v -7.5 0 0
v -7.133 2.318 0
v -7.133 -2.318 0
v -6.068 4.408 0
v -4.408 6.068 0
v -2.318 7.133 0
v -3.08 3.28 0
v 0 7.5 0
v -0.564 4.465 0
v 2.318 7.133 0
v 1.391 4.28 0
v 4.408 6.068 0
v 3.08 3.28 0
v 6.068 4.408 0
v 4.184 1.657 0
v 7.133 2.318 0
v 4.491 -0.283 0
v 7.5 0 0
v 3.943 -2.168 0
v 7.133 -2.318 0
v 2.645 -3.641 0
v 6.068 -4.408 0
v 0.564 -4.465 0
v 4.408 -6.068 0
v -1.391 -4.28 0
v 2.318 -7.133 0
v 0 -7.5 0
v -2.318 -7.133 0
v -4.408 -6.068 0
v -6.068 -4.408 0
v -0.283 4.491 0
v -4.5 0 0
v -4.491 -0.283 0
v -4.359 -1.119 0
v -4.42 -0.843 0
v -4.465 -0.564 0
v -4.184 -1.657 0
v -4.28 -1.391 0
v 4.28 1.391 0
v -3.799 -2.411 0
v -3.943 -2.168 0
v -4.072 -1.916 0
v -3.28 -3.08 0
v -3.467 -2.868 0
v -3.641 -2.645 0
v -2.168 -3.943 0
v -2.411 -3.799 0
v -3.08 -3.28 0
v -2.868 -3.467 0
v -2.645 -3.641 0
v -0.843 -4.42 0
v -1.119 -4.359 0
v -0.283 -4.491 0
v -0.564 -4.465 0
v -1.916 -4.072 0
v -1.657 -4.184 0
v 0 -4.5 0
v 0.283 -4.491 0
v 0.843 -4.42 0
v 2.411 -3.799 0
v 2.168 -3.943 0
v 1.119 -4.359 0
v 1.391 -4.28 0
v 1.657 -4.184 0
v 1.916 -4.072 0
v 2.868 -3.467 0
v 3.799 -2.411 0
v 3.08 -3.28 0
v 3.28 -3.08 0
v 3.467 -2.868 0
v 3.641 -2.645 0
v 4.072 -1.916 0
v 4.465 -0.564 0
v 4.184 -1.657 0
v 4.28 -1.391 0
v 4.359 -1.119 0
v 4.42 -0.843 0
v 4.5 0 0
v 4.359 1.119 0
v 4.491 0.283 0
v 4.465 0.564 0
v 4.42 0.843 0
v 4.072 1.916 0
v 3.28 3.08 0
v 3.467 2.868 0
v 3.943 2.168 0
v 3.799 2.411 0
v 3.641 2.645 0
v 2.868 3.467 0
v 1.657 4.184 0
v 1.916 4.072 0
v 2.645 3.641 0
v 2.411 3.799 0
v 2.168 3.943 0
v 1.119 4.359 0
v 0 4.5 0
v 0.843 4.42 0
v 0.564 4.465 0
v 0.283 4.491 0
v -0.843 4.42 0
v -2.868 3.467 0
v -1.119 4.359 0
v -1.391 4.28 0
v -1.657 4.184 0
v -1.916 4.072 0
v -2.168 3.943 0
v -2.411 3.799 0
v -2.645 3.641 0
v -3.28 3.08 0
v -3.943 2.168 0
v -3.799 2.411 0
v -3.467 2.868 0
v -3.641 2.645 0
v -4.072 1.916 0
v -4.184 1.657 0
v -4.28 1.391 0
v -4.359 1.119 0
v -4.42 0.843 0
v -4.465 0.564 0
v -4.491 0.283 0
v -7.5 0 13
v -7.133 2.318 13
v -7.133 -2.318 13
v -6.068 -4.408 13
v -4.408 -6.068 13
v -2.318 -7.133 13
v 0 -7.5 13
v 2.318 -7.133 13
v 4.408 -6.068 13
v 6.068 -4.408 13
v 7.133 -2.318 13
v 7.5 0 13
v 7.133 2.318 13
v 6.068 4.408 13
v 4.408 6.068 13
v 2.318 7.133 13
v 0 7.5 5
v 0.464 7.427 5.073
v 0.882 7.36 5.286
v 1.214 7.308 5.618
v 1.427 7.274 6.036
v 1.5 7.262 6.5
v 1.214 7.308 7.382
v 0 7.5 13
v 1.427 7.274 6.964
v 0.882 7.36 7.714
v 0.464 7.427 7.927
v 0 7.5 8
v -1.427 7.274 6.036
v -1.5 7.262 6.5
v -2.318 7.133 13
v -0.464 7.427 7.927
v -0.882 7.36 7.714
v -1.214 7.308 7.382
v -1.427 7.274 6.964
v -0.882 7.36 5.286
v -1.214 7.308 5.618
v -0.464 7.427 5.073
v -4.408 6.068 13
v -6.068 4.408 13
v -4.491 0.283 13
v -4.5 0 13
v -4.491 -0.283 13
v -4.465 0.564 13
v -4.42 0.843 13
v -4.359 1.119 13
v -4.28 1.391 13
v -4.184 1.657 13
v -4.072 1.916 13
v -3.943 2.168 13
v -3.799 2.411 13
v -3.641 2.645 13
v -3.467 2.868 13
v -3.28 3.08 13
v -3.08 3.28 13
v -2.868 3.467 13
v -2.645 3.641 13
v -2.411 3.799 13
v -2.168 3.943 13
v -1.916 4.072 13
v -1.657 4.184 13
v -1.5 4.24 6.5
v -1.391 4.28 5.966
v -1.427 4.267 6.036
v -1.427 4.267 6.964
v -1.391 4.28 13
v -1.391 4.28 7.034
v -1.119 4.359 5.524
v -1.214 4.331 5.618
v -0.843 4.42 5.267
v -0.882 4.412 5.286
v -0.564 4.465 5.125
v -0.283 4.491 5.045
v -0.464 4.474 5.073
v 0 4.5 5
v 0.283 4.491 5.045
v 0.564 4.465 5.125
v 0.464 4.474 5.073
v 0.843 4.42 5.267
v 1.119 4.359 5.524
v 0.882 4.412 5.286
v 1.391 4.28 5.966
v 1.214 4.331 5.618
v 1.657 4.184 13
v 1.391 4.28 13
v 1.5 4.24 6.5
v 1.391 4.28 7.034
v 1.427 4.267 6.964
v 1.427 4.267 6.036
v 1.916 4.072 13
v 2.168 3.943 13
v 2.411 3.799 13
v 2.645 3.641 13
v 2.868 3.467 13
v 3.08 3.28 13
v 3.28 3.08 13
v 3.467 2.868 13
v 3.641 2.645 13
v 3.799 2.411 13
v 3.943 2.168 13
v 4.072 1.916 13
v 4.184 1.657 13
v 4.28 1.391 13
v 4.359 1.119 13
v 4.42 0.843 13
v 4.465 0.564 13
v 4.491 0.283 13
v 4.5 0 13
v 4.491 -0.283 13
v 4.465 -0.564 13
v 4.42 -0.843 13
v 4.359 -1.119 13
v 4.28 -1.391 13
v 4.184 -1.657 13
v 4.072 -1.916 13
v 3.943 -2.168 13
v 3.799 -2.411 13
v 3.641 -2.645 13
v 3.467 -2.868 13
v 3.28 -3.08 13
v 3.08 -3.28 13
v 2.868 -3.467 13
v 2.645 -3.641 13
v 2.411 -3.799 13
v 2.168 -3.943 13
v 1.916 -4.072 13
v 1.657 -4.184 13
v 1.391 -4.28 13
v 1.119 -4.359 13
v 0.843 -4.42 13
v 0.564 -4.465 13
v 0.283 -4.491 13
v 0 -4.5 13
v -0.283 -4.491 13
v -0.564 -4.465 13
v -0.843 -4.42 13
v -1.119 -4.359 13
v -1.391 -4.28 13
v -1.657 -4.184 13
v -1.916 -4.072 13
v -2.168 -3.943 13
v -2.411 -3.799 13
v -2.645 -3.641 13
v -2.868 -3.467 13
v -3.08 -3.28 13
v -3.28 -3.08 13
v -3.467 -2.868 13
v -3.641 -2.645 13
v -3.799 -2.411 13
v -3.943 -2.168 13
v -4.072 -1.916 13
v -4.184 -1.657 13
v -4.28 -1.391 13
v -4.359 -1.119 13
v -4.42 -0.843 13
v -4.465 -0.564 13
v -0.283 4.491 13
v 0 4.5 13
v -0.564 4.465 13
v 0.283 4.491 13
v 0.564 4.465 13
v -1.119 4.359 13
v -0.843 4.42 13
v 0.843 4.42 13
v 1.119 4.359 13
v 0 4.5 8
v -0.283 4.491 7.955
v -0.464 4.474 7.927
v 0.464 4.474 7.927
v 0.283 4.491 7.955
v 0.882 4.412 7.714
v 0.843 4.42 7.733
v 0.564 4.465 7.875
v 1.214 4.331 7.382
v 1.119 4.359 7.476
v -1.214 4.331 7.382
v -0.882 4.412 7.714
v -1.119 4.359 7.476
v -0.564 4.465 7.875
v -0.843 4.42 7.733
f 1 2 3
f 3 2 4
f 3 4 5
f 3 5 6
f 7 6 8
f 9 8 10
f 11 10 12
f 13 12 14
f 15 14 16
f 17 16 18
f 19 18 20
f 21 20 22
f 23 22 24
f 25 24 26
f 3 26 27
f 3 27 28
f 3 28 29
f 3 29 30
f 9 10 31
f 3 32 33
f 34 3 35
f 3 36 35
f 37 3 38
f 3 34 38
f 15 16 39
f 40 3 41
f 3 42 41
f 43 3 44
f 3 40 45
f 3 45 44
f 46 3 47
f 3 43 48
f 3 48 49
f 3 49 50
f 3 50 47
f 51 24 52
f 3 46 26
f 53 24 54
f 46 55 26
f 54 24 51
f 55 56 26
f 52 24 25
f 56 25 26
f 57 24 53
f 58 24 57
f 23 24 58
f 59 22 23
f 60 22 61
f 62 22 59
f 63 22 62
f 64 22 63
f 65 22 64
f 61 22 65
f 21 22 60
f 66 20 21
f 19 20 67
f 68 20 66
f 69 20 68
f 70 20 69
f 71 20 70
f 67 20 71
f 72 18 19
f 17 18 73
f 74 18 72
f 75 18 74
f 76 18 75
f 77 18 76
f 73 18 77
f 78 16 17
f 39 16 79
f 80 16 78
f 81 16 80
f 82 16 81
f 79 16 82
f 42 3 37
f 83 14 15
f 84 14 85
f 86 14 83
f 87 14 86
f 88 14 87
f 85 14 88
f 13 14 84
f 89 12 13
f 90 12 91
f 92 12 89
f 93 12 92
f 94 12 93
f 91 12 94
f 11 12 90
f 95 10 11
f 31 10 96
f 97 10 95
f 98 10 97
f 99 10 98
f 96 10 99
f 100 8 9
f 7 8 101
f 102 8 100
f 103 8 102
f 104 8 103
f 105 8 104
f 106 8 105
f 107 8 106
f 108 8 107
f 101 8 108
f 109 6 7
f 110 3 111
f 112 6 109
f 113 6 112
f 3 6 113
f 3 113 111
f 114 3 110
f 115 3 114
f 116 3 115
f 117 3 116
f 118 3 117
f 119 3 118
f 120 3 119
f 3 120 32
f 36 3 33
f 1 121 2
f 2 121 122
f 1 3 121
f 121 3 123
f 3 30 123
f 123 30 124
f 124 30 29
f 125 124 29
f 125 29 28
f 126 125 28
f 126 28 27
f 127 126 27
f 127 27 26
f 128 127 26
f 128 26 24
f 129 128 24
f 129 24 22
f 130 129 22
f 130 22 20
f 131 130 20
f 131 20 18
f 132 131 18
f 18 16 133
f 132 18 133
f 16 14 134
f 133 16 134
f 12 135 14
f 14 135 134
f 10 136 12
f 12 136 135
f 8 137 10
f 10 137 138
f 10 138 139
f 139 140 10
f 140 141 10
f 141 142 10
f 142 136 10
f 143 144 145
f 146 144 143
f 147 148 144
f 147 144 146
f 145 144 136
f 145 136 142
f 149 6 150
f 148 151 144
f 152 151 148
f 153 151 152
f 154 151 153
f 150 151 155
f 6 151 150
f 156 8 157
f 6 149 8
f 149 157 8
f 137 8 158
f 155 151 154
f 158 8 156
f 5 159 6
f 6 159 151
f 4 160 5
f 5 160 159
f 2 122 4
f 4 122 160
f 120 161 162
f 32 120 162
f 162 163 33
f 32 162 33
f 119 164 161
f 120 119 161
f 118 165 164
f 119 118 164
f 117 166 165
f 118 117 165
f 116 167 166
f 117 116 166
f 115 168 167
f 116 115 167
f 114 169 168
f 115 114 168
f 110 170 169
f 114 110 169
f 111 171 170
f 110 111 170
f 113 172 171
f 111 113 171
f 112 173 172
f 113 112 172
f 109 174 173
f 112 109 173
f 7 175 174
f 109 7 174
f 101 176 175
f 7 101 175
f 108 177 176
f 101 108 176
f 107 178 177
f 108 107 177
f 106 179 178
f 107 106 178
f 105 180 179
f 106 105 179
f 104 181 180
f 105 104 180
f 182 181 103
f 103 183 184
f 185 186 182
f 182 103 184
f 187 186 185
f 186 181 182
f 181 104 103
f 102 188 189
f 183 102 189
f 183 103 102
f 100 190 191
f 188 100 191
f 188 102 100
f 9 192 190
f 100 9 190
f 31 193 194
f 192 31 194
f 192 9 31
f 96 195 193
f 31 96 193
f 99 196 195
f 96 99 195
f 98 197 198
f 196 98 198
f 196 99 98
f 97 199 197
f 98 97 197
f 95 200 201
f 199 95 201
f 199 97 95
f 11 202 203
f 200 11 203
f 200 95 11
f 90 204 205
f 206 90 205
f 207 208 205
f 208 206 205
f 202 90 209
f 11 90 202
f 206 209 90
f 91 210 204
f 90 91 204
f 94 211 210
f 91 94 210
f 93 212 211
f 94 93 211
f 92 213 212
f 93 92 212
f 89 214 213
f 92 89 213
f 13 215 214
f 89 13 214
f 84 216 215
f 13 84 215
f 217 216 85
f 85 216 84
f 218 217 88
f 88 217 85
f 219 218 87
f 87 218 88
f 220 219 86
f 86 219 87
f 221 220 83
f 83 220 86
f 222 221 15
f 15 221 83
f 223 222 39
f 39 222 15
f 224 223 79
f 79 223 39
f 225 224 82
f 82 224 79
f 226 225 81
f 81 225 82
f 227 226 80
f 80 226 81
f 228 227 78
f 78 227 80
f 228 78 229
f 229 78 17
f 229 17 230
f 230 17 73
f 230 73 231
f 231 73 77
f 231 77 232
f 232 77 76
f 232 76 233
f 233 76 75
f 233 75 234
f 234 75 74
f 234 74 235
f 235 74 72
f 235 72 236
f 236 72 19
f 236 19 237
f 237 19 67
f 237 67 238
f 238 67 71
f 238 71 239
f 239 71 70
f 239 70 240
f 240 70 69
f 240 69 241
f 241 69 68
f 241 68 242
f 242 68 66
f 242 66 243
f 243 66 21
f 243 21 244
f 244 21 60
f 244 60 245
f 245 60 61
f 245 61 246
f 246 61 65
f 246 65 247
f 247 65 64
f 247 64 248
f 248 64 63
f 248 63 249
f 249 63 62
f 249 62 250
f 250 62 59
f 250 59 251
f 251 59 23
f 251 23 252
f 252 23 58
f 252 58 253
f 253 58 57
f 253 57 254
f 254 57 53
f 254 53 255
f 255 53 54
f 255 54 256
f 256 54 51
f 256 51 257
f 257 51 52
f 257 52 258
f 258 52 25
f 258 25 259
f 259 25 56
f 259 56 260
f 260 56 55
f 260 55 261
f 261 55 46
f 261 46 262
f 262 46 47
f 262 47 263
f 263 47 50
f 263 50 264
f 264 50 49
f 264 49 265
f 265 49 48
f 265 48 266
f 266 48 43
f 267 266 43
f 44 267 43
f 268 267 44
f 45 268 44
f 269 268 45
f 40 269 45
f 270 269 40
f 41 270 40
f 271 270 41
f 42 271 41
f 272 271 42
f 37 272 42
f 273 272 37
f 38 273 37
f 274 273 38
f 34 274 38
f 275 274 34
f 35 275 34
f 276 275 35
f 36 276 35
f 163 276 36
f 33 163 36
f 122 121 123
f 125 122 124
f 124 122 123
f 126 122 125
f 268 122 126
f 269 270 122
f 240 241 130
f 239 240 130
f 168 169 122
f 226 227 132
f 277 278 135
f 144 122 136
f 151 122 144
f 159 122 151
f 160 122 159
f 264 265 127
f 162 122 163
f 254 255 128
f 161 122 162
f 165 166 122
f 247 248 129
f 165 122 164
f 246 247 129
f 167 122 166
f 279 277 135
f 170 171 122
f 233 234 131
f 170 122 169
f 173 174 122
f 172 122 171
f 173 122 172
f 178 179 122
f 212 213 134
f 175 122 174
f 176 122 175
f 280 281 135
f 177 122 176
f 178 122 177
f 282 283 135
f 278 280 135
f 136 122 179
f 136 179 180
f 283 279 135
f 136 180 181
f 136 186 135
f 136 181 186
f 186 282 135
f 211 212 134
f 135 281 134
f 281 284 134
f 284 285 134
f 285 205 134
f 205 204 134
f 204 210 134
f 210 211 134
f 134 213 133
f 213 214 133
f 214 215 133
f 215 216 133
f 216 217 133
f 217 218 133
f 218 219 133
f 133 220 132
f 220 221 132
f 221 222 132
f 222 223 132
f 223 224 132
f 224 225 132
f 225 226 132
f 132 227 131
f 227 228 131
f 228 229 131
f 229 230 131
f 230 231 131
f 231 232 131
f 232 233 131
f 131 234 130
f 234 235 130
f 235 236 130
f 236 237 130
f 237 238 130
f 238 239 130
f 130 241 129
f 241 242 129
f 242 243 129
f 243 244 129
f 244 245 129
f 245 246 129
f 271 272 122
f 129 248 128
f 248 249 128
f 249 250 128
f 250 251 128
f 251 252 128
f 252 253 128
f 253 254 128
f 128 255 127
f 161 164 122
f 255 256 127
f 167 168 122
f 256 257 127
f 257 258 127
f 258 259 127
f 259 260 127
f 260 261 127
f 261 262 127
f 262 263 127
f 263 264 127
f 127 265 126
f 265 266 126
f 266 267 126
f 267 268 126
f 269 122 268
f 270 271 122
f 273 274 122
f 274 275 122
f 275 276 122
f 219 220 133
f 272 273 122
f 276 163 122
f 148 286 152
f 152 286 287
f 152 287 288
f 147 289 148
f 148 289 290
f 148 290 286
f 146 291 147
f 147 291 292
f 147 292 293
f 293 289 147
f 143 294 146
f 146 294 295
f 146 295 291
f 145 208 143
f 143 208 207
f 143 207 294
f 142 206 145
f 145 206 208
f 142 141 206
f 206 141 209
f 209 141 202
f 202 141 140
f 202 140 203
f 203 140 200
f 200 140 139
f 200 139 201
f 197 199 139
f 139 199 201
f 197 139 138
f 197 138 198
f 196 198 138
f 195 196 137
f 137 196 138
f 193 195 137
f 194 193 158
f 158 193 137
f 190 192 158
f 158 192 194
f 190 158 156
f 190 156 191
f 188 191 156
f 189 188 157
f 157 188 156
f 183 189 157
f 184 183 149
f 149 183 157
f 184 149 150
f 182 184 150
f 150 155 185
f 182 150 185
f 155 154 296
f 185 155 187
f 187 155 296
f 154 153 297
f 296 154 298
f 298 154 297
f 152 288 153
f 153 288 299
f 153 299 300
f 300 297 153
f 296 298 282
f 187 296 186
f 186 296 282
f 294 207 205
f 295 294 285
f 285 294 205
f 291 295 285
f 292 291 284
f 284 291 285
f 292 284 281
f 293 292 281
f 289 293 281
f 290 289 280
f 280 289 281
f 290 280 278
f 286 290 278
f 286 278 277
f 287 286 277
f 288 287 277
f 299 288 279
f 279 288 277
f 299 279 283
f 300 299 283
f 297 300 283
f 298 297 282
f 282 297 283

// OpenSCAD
//Collar sujeta ejes
//parametros rueda


diametro_varilla=9; //diametro interior del eje o varilla         ///////axis diameter
diametro_exterior=15;	// grosor del aro externo de la rueda     ////////external diameter
grosor_collar=13; //altura del collar             /////////height
metrica_freno=3; //metrica tornillo freno         ///////screw size

module collar(){
	difference(){
		
				cylinder (r=diametro_exterior/2, h=grosor_collar, $fn=20);
				cylinder (r=diametro_varilla/2, h=100, $fn=100, center=true);
				translate([0,diametro_exterior/2,grosor_collar/2])
				rotate([90,0,0])
				cylinder (r=metrica_freno/2, h=diametro_exterior, $fn=20, center=true);
				
			
	}//fin diference
}




	//rueda en si
	collar();
	
	
		

	
